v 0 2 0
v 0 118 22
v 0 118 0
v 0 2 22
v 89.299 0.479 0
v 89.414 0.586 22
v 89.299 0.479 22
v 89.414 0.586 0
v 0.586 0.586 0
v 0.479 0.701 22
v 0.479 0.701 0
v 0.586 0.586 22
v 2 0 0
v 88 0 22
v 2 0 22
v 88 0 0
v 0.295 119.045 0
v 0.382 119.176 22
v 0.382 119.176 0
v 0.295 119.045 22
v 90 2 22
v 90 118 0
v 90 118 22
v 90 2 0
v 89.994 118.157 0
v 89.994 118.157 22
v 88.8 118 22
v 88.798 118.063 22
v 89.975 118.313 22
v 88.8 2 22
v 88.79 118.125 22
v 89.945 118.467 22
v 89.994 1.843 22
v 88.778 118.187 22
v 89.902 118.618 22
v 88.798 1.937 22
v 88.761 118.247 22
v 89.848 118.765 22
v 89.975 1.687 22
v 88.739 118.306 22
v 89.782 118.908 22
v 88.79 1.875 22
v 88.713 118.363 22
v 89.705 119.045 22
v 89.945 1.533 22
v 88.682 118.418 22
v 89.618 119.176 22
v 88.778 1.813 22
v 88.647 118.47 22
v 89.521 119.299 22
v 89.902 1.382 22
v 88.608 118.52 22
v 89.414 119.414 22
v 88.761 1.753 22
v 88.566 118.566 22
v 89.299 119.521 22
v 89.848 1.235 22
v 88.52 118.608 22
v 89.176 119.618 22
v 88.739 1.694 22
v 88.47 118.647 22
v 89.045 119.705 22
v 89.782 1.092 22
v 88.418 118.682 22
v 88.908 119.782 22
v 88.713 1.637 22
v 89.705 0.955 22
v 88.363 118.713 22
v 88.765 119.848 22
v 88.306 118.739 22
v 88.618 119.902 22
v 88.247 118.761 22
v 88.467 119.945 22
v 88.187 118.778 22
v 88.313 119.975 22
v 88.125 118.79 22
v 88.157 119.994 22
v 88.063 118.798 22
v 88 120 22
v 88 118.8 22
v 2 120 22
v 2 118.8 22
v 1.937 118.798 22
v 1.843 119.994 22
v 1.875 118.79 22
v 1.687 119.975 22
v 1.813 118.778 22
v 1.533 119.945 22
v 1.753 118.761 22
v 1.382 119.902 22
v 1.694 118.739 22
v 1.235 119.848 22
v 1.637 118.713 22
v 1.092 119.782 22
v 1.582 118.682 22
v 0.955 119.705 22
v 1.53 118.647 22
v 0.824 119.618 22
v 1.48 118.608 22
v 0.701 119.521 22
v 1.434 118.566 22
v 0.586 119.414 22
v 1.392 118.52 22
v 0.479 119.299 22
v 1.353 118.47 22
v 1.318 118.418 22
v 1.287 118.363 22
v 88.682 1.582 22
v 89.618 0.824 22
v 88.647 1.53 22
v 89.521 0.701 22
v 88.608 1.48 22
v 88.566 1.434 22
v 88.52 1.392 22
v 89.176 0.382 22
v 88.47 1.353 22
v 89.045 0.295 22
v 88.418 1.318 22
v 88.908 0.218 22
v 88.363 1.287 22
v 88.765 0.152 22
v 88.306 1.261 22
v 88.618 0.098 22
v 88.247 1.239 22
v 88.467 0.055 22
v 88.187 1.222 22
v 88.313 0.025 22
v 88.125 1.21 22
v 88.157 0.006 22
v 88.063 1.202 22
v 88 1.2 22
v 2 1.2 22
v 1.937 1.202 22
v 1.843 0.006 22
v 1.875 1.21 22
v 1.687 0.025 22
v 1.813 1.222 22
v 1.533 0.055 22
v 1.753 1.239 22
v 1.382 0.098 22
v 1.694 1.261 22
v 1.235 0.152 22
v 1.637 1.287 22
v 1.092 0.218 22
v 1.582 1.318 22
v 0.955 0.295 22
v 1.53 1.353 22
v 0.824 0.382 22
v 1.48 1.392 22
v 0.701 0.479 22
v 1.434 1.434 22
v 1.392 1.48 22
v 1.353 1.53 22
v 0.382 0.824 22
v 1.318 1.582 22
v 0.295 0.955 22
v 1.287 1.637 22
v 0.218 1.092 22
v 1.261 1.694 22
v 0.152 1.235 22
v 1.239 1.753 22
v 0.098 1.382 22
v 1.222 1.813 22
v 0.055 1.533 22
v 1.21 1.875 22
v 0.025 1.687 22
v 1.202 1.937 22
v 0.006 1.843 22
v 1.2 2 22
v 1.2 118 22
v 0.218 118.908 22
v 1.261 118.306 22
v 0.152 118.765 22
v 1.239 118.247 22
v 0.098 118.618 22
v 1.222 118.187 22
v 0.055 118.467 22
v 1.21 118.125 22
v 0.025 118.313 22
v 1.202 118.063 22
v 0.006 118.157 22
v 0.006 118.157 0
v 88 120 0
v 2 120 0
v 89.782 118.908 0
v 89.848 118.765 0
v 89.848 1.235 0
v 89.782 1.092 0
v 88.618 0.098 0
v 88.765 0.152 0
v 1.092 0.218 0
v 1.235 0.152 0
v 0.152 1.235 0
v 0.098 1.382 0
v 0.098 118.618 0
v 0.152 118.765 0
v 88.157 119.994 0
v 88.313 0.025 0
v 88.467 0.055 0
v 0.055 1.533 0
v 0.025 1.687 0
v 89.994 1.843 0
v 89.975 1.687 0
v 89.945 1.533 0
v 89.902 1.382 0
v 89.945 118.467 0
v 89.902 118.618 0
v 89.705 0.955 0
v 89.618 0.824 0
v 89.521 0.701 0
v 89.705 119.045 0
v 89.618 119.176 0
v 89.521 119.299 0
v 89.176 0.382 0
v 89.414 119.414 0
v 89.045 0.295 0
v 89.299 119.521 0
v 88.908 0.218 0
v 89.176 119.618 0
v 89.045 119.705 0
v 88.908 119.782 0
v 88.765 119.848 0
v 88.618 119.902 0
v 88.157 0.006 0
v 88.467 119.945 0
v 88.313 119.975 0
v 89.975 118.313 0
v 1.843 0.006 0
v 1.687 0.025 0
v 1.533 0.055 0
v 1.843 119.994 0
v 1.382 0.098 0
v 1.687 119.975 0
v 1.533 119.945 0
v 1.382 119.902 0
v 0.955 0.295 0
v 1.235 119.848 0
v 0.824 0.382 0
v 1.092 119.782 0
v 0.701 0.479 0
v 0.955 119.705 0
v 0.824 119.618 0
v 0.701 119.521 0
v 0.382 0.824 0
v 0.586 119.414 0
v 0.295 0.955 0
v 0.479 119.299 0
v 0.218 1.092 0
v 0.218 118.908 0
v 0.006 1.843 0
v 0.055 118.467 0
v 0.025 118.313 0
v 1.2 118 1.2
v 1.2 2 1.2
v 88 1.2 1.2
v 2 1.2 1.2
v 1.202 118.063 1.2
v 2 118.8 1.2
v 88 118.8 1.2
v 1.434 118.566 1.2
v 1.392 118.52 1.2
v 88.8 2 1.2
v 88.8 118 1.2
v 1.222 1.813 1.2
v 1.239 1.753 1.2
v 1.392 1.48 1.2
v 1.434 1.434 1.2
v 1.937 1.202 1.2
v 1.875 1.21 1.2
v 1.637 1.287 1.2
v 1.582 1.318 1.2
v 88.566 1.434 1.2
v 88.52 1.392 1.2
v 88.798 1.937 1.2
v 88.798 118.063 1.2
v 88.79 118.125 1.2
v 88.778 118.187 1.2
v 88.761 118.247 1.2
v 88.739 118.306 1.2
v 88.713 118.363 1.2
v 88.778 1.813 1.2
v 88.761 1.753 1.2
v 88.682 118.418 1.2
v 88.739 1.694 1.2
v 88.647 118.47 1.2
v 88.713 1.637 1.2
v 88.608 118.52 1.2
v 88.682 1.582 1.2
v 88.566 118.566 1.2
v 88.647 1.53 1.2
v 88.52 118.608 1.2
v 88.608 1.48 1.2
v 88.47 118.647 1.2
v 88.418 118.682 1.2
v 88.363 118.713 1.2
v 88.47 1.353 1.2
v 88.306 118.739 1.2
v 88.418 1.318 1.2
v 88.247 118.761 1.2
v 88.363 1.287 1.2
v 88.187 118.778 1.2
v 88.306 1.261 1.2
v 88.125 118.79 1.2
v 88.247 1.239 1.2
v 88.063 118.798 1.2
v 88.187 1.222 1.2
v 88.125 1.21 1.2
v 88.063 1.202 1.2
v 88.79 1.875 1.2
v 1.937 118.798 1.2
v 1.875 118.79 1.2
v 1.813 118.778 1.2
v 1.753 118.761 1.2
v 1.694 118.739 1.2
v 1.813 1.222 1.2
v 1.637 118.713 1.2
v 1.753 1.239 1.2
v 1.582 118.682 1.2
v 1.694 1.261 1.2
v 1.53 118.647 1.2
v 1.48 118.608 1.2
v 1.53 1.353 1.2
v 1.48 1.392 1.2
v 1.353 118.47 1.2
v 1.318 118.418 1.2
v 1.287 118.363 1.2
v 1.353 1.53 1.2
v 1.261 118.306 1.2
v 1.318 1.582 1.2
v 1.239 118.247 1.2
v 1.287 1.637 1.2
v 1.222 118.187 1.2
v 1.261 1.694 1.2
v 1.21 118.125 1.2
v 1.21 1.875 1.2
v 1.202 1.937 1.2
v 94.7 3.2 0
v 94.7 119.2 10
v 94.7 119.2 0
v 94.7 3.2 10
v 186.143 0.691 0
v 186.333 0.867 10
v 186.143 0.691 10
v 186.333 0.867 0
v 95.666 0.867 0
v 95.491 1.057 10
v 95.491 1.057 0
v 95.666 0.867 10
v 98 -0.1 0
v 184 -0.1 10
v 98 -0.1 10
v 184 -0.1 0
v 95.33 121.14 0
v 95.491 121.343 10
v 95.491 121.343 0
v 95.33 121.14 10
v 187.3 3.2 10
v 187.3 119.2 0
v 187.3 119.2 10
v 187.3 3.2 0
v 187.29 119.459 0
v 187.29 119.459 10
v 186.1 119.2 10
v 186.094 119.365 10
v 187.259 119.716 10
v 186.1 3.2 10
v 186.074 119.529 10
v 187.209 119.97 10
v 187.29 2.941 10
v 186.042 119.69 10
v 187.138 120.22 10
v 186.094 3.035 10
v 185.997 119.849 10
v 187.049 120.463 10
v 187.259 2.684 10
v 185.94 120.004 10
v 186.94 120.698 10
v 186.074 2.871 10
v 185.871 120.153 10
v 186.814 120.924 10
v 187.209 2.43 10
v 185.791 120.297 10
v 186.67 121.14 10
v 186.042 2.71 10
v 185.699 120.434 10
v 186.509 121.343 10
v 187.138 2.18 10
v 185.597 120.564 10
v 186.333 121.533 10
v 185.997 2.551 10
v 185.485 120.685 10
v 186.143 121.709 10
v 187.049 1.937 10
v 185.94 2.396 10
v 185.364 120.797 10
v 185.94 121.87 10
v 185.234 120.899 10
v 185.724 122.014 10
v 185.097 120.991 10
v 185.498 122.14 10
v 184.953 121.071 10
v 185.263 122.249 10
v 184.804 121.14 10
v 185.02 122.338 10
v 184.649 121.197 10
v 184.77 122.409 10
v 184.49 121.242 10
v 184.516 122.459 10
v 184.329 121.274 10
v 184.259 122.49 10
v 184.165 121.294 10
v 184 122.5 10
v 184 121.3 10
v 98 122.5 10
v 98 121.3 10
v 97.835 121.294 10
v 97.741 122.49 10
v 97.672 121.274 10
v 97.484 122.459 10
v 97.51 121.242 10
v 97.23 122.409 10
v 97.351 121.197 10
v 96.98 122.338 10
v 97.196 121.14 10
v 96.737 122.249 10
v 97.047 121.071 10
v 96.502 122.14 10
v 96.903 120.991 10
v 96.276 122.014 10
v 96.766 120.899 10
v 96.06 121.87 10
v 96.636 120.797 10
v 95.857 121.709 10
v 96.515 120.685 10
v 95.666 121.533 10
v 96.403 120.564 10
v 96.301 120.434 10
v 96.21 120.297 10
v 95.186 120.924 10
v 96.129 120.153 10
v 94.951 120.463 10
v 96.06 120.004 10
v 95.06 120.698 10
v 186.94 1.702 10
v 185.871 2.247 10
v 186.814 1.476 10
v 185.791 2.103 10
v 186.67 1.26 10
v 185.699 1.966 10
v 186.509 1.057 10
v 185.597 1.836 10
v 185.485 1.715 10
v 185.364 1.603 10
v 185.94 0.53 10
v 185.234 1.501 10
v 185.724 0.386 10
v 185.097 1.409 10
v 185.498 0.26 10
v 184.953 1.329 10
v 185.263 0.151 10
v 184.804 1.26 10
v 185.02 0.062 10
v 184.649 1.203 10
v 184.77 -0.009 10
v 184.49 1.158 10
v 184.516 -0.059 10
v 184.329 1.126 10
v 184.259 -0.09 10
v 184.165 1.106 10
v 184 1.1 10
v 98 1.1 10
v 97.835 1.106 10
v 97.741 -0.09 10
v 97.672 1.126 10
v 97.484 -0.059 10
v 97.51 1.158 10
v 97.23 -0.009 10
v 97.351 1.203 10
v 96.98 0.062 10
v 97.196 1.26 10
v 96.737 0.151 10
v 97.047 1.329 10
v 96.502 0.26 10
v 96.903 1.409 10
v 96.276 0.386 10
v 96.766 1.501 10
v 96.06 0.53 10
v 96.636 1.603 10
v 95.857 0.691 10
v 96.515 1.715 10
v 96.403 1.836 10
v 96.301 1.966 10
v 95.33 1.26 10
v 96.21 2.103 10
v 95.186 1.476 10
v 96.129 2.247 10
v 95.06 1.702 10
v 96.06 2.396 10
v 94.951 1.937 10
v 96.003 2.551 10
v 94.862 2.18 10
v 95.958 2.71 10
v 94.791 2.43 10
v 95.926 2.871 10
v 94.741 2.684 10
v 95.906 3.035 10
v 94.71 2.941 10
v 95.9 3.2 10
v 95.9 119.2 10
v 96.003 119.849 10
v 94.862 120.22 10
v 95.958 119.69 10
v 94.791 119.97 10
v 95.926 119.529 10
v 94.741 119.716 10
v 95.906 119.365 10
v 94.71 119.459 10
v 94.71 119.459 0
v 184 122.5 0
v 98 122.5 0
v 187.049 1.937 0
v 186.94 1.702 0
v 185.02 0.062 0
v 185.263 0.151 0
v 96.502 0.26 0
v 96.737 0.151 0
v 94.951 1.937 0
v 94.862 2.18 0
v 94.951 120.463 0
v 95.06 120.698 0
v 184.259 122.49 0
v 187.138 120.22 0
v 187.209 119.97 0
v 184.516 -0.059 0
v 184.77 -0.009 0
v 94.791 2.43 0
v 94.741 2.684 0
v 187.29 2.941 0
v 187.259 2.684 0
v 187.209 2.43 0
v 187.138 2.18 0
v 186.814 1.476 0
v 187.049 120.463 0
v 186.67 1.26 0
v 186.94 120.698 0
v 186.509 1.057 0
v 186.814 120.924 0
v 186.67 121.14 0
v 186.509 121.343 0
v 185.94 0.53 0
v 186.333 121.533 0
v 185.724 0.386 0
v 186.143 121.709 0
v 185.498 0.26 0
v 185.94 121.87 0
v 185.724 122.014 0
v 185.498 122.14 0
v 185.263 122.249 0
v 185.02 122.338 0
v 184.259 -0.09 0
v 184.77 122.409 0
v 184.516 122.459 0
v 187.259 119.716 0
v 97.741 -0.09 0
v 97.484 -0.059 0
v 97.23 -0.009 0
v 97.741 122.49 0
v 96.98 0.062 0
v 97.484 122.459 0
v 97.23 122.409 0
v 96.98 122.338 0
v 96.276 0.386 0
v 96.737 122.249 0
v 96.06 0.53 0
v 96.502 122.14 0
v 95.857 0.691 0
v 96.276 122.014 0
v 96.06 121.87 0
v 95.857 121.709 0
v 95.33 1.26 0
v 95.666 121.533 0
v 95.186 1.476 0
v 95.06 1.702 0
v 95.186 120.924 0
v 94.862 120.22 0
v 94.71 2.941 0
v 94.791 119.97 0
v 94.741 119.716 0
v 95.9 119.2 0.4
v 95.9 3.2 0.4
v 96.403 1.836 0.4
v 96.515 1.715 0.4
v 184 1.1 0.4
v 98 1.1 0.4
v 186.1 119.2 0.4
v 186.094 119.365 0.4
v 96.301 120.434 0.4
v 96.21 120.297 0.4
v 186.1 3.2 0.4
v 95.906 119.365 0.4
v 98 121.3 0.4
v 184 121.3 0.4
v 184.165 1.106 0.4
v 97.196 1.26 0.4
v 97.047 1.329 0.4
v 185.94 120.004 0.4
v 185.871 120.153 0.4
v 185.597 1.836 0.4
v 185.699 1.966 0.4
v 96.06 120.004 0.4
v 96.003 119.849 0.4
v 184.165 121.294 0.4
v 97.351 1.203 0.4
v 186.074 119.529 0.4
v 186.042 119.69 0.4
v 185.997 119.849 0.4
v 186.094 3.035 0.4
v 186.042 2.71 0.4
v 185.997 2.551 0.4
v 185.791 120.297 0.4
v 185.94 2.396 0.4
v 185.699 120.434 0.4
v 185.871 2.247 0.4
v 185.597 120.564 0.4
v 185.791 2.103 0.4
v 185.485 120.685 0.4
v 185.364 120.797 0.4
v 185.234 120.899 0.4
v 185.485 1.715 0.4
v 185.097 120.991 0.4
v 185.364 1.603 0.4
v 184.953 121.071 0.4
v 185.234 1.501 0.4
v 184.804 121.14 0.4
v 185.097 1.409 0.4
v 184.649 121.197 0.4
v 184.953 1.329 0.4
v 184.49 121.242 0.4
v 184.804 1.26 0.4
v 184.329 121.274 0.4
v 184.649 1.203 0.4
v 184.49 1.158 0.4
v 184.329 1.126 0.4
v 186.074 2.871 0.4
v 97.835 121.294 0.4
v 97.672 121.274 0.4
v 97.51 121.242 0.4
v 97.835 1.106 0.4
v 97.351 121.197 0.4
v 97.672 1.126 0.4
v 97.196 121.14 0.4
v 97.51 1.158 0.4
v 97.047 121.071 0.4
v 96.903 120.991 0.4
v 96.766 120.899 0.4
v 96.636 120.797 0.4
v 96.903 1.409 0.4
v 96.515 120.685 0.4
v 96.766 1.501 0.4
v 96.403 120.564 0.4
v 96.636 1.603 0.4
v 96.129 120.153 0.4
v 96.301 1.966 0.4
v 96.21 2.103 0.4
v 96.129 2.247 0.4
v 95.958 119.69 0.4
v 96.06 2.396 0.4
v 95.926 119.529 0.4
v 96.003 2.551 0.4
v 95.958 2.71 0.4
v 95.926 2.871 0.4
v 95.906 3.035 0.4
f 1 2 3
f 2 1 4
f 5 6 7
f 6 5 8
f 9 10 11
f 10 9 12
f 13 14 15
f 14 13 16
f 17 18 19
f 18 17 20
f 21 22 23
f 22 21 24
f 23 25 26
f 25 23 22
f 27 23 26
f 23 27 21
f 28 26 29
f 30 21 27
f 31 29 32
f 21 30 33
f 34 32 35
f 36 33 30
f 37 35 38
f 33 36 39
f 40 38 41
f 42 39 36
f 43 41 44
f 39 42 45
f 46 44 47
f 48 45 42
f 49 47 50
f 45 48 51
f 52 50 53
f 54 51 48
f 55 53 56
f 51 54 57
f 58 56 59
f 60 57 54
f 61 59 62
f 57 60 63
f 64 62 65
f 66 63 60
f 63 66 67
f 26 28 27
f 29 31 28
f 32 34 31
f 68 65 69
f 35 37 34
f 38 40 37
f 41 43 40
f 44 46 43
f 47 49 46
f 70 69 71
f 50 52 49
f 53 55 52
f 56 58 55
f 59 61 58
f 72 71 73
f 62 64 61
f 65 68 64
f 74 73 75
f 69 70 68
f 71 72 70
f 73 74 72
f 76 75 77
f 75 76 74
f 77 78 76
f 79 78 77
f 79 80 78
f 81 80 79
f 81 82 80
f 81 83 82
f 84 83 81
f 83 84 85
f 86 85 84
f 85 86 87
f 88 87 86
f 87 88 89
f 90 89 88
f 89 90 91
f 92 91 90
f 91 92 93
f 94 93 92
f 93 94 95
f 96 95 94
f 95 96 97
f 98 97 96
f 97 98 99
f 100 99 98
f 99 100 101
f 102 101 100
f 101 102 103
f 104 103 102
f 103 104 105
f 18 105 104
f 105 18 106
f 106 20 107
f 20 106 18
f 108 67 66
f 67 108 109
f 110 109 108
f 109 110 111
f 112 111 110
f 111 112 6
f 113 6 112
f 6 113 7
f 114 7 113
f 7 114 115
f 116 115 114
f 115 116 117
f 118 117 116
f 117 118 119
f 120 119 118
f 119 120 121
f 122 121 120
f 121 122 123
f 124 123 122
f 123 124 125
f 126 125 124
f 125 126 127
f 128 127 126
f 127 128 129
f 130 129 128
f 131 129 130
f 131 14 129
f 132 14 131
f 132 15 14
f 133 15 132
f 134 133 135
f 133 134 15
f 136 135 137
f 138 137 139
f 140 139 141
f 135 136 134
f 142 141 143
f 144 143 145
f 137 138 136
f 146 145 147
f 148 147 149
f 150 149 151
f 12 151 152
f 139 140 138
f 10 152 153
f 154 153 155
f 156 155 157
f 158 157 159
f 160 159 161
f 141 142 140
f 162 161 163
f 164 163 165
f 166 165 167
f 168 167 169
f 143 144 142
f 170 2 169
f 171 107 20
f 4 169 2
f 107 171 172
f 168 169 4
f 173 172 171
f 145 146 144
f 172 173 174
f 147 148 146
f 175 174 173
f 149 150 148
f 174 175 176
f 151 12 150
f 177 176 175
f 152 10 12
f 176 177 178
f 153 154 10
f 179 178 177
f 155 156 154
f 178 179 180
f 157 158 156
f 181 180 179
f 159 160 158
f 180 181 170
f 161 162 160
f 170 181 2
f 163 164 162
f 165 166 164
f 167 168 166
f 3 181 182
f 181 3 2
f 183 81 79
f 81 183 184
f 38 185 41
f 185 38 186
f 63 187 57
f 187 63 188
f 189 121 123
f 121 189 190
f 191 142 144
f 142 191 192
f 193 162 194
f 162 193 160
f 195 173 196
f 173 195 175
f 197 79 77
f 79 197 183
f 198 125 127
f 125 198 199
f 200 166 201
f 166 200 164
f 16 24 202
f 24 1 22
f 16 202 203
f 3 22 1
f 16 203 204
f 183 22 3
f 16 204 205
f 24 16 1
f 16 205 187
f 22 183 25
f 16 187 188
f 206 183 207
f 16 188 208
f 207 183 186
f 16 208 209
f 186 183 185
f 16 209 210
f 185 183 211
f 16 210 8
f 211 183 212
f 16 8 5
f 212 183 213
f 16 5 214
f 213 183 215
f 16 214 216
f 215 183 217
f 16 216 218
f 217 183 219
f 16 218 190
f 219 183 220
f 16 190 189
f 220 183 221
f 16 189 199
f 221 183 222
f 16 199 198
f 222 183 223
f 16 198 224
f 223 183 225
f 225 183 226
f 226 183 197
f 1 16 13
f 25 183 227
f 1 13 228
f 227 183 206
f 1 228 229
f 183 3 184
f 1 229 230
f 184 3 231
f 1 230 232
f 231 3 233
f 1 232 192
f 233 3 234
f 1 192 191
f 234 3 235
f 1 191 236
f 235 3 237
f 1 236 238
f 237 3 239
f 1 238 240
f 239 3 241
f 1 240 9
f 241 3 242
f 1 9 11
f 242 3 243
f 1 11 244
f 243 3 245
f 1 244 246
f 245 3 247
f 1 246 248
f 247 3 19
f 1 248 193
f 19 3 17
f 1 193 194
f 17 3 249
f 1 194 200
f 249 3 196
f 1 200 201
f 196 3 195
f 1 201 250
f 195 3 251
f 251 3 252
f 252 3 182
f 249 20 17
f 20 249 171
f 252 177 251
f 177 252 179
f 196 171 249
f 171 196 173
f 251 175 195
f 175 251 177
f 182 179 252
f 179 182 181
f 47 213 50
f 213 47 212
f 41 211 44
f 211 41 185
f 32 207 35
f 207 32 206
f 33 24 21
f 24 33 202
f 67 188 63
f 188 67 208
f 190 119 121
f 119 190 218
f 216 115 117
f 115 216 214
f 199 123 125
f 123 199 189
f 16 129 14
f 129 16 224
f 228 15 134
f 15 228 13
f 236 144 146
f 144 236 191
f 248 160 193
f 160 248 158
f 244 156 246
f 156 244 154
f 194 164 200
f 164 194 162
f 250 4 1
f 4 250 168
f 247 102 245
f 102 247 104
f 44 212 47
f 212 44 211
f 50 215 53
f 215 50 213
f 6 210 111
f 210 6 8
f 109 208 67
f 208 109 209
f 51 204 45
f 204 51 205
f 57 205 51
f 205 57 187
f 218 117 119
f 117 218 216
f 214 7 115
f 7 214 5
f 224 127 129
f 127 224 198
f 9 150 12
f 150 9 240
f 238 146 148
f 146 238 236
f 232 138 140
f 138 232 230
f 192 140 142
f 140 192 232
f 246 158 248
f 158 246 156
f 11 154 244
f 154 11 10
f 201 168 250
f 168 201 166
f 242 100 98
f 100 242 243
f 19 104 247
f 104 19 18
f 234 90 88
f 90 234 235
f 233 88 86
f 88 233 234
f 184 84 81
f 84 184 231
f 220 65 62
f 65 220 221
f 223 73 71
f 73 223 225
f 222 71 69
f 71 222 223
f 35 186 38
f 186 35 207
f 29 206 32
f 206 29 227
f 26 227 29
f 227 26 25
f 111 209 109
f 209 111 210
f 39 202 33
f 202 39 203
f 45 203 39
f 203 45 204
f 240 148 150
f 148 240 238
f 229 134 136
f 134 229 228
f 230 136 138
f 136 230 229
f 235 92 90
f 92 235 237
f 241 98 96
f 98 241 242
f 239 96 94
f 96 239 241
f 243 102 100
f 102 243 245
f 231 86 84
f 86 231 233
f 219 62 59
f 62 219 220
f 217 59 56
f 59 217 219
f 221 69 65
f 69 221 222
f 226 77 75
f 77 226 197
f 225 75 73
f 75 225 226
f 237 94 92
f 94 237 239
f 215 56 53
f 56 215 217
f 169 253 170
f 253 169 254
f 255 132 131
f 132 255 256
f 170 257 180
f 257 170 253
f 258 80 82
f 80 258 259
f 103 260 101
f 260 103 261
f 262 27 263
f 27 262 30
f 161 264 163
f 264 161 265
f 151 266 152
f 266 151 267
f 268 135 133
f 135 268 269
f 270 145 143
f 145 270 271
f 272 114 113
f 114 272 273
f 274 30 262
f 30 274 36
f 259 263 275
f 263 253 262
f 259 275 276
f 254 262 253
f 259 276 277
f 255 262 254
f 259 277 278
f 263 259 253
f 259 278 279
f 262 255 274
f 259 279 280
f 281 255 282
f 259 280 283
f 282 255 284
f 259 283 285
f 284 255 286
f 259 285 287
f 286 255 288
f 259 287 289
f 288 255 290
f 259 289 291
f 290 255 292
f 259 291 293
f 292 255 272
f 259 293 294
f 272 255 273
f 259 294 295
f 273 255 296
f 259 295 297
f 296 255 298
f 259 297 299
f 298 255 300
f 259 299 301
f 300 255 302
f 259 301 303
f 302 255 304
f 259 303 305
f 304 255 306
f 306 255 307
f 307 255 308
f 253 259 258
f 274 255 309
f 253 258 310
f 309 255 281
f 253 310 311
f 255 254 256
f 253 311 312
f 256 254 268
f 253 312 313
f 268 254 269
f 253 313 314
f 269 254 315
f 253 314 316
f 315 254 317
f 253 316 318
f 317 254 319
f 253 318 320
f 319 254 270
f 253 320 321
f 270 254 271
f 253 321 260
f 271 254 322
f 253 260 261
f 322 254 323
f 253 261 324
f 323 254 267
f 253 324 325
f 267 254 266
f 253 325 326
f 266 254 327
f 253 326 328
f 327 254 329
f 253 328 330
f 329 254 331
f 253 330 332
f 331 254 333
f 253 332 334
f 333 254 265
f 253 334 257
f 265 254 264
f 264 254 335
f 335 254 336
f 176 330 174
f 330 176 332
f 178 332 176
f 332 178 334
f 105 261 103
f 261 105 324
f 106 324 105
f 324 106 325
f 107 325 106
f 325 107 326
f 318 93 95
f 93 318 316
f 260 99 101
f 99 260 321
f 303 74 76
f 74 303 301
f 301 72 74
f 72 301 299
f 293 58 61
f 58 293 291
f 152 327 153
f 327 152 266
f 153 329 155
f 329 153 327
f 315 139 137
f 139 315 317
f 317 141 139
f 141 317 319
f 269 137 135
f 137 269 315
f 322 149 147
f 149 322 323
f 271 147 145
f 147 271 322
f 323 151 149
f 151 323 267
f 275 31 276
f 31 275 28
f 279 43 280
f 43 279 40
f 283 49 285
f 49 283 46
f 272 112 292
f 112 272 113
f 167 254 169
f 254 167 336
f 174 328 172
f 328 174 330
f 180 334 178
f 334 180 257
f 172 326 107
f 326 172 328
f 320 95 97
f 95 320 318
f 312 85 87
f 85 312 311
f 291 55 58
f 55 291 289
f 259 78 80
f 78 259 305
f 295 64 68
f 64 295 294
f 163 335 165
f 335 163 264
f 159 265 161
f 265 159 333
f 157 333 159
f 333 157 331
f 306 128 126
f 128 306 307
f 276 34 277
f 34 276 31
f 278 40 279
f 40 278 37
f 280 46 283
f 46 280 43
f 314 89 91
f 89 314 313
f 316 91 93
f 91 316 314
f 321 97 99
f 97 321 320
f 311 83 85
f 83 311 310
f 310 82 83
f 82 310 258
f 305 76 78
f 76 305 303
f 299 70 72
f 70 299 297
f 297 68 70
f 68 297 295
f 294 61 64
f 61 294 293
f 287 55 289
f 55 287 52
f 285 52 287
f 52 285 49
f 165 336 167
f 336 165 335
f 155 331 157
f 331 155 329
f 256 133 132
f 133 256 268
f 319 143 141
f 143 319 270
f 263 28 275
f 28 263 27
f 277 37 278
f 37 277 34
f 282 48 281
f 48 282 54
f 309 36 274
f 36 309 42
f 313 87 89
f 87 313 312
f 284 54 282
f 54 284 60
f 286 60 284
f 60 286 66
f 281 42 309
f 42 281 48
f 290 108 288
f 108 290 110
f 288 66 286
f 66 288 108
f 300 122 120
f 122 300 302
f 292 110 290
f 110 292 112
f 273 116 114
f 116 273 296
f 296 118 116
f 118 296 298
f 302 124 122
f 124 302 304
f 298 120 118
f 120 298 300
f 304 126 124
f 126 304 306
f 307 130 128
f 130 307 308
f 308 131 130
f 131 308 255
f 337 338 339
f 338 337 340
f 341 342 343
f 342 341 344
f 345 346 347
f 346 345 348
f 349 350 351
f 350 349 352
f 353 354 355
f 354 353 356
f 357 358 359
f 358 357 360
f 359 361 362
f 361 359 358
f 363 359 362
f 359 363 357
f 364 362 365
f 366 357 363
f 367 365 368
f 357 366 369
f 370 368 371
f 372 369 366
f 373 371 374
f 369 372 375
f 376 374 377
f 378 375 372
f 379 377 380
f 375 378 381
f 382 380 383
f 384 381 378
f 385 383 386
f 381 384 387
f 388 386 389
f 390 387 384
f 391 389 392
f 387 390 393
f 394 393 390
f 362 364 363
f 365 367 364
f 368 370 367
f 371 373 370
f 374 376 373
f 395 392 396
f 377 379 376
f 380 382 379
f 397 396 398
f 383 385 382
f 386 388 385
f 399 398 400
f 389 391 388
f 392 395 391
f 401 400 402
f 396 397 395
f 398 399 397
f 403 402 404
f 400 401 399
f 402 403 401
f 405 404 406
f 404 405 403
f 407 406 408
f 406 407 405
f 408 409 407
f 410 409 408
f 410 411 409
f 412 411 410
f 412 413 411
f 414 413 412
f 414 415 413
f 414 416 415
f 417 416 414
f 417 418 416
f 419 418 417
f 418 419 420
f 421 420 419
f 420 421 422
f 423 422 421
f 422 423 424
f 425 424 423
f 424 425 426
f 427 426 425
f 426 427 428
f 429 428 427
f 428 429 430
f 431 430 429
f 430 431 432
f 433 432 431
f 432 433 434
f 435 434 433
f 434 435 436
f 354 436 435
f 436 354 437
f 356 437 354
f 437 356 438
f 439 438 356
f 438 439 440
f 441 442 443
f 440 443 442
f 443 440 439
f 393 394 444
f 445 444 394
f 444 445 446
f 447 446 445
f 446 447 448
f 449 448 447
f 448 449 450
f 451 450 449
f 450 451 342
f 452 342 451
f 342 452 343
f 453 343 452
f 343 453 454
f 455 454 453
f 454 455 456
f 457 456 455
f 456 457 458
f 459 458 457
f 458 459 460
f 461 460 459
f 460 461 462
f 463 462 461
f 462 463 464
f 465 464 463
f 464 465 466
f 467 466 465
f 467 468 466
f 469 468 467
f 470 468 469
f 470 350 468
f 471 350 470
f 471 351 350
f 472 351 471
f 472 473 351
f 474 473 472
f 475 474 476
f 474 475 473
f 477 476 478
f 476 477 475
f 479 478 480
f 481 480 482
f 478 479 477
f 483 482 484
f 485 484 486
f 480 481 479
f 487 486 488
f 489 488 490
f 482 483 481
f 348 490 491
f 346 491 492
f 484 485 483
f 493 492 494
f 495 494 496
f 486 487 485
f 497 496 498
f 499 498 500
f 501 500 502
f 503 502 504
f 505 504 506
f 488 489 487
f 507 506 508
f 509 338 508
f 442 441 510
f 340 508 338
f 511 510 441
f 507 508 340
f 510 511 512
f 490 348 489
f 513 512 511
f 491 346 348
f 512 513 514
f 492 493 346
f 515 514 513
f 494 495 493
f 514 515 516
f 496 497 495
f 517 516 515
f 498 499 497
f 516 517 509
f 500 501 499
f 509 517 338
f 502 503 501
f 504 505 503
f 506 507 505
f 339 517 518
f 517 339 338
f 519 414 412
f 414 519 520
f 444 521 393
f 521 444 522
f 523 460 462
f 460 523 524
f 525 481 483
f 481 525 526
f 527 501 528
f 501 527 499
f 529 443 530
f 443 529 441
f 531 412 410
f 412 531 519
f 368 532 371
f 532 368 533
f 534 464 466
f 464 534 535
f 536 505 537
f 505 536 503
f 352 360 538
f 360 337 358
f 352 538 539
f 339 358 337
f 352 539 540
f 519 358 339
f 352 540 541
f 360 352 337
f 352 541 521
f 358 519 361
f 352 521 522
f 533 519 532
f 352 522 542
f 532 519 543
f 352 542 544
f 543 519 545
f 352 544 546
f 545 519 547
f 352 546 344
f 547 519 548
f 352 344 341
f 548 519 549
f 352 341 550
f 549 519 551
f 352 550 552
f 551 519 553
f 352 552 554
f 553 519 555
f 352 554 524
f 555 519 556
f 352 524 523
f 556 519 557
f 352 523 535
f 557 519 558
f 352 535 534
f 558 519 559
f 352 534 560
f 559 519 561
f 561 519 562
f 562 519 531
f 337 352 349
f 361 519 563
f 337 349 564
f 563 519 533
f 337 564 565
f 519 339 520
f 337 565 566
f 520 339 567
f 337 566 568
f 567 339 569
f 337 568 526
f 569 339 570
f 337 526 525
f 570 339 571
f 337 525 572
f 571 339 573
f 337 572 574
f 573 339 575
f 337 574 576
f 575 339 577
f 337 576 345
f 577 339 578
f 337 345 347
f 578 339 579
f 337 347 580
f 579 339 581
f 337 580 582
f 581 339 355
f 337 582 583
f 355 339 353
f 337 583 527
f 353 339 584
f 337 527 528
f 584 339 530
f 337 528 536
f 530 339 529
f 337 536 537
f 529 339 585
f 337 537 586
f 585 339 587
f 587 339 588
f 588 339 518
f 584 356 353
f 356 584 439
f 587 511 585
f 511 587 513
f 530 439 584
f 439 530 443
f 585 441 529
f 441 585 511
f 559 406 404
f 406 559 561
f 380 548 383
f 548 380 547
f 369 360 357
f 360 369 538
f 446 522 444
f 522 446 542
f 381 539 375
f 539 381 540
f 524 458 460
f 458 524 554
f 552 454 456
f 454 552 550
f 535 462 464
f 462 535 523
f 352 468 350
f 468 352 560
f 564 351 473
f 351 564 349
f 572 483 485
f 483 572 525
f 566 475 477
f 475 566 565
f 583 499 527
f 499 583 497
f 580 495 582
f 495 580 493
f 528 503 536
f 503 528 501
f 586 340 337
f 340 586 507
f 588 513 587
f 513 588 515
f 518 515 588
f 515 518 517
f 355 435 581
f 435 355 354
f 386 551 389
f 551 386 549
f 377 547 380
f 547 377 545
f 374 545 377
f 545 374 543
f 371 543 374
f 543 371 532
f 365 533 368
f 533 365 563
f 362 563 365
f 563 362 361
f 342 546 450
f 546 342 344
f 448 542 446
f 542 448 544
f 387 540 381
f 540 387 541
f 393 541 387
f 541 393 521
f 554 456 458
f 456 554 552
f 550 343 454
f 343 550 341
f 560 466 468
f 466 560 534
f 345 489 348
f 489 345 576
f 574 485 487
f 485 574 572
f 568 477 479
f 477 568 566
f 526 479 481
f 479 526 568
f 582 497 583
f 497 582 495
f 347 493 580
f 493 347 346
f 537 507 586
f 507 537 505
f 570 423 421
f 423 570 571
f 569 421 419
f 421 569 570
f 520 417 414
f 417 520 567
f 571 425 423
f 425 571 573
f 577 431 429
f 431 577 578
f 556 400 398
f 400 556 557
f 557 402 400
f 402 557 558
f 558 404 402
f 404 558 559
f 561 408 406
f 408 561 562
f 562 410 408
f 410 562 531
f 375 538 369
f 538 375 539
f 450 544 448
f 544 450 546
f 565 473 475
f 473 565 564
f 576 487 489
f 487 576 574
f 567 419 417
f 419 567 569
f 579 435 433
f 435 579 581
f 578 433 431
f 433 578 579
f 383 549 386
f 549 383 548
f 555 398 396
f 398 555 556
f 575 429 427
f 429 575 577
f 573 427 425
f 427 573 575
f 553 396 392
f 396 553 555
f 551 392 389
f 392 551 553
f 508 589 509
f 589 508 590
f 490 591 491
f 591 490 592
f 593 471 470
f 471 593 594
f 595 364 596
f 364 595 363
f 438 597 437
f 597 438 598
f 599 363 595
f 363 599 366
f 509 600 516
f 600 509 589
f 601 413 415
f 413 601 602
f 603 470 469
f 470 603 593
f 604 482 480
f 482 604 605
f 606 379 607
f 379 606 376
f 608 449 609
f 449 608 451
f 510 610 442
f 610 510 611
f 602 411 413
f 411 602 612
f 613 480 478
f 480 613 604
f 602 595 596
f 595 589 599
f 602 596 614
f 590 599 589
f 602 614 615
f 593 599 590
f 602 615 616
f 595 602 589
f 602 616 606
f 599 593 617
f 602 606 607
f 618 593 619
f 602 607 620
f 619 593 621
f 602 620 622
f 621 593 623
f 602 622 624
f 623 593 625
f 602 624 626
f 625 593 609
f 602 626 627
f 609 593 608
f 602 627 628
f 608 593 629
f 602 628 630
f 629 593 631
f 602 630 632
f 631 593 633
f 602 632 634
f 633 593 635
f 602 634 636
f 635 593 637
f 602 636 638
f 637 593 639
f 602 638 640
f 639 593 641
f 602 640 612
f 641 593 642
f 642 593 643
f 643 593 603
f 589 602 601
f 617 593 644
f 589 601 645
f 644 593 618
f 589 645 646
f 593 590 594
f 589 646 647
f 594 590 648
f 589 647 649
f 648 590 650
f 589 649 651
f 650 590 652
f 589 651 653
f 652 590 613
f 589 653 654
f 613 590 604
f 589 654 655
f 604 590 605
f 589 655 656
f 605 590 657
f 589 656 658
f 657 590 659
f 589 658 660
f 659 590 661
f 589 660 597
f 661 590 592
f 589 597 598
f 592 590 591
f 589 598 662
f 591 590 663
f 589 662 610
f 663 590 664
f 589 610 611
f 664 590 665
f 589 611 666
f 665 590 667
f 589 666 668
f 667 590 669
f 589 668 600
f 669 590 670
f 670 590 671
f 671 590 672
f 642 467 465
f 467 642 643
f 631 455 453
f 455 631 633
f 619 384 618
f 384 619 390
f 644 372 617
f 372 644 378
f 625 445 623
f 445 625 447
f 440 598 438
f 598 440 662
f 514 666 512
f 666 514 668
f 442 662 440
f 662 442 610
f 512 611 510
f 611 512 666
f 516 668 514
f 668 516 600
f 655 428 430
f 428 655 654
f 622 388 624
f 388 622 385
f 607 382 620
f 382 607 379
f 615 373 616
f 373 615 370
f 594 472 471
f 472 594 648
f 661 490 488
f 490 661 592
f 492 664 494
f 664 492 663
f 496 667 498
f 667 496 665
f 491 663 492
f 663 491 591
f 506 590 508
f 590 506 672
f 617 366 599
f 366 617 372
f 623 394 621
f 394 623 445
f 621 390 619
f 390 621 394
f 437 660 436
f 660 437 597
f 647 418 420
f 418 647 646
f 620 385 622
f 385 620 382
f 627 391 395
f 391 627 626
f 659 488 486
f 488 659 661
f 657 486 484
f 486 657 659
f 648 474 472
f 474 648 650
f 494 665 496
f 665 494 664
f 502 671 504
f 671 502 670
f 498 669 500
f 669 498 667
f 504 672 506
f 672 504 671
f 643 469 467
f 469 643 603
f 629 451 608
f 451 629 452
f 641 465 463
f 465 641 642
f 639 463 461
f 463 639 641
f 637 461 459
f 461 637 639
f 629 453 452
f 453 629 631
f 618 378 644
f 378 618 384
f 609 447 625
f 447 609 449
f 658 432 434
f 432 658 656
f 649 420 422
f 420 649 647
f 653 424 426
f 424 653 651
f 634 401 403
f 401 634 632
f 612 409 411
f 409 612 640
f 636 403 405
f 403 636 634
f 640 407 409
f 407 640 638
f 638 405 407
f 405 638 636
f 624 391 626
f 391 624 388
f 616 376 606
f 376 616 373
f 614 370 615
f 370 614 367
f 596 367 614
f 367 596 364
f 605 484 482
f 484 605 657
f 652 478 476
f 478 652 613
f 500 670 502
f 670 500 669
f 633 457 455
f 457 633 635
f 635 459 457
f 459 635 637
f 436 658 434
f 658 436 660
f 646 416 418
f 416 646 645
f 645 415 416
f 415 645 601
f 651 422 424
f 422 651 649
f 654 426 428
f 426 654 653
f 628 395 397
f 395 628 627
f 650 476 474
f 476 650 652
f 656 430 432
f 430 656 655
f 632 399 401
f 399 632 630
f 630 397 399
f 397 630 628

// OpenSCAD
/* [Box] */
//Box height
height=22;
//Box length
length=120;
//Box width
width=90;
//Radius for corners (minimum 2)
cornerrad=2;
//Wall thickness
outwalls=1.2;
//Box thickness for floor
thickness=1.2;

/* [Box Sections] */
//Amount of sections in the length
sectionsl=0;
//Amount of sections in the width
sectionsw=0;
//Sections height
sectionsh=14;
//Inner walls thickness
inwalls=0.8;

/* [Lid] */
//Tolerance for lid
tol=0.1; 
//Lid thickness for top
lidthickness=0.4;
//Lid height
lidheight=10;

l=length-(cornerrad*2);
w=width-(cornerrad*2);

translate([cornerrad, cornerrad, 0]){
    union(){
        difference() {
            hull() {
                h = (height/2);
                translate([0,0,h]) cylinder(h=height, r=cornerrad, $fn=80, center = true);
                translate([0,l,h]) cylinder(h=height, r=cornerrad, $fn=80, center = true);
                translate([w,l,h]) cylinder(h=height, r=cornerrad, $fn=80, center = true);
                translate([w,0,h]) cylinder(h=height, r=cornerrad, $fn=80, center = true);
            }
            hull() {
                h = (height/2) + thickness;
                translate([0,0,h]) cylinder(h=height, r=cornerrad-outwalls, $fn=80, center = true);
                translate([0,l,h]) cylinder(h=height, r=cornerrad-outwalls, $fn=80, center = true);
                translate([w,l,h]) cylinder(h=height, r=cornerrad-outwalls, $fn=80, center = true);
                translate([w,0,h]) cylinder(h=height, r=cornerrad-outwalls, $fn=80, center = true);
            }
        }
        
        if( sectionsl > 0 ){
            cutl = ((length) - (outwalls*2))/sectionsl;
            for(i = [cutl : cutl : length-cutl]) {
                translate([w/2,i+outwalls-cornerrad,sectionsh/2]) cube([width,inwalls,sectionsh], center=true);
            }
        }
        
        if( sectionsw > 0 ){
            cutw = ((width) - (outwalls*2))/sectionsw;
            for(i = [cutw : cutw : width-cutw]) {
                translate([i+outwalls-cornerrad,l/2,sectionsh/2]) cube([inwalls,length,sectionsh], center=true);
            }
        }
        
    }

    translate([w + (cornerrad*2) + 6, outwalls, 0]){
        difference() {
            hull() {
                h = (lidheight/2);
                translate([0,0,h]) cylinder(h=lidheight, r=cornerrad+tol+outwalls, $fn=80, center = true);
                translate([0,l,h]) cylinder(h=lidheight, r=cornerrad+tol+outwalls, $fn=80, center = true);
                translate([w,l,h]) cylinder(h=lidheight, r=cornerrad+tol+outwalls, $fn=80, center = true);
                translate([w,0,h]) cylinder(h=lidheight, r=cornerrad+tol+outwalls, $fn=80, center = true);
            }
            
            hull() {
                h = (lidheight/2) + lidthickness;
                translate([0,0,h]) cylinder(h=lidheight, r=(cornerrad)+tol, $fn=80, center = true);
                translate([0,l,h]) cylinder(h=lidheight, r=(cornerrad)+tol, $fn=80, center = true);
                translate([w,l,h]) cylinder(h=lidheight, r=(cornerrad)+tol, $fn=80, center = true);
                translate([w,0,h]) cylinder(h=lidheight, r=(cornerrad)+tol, $fn=80, center = true);
            }
        }
    }
}
